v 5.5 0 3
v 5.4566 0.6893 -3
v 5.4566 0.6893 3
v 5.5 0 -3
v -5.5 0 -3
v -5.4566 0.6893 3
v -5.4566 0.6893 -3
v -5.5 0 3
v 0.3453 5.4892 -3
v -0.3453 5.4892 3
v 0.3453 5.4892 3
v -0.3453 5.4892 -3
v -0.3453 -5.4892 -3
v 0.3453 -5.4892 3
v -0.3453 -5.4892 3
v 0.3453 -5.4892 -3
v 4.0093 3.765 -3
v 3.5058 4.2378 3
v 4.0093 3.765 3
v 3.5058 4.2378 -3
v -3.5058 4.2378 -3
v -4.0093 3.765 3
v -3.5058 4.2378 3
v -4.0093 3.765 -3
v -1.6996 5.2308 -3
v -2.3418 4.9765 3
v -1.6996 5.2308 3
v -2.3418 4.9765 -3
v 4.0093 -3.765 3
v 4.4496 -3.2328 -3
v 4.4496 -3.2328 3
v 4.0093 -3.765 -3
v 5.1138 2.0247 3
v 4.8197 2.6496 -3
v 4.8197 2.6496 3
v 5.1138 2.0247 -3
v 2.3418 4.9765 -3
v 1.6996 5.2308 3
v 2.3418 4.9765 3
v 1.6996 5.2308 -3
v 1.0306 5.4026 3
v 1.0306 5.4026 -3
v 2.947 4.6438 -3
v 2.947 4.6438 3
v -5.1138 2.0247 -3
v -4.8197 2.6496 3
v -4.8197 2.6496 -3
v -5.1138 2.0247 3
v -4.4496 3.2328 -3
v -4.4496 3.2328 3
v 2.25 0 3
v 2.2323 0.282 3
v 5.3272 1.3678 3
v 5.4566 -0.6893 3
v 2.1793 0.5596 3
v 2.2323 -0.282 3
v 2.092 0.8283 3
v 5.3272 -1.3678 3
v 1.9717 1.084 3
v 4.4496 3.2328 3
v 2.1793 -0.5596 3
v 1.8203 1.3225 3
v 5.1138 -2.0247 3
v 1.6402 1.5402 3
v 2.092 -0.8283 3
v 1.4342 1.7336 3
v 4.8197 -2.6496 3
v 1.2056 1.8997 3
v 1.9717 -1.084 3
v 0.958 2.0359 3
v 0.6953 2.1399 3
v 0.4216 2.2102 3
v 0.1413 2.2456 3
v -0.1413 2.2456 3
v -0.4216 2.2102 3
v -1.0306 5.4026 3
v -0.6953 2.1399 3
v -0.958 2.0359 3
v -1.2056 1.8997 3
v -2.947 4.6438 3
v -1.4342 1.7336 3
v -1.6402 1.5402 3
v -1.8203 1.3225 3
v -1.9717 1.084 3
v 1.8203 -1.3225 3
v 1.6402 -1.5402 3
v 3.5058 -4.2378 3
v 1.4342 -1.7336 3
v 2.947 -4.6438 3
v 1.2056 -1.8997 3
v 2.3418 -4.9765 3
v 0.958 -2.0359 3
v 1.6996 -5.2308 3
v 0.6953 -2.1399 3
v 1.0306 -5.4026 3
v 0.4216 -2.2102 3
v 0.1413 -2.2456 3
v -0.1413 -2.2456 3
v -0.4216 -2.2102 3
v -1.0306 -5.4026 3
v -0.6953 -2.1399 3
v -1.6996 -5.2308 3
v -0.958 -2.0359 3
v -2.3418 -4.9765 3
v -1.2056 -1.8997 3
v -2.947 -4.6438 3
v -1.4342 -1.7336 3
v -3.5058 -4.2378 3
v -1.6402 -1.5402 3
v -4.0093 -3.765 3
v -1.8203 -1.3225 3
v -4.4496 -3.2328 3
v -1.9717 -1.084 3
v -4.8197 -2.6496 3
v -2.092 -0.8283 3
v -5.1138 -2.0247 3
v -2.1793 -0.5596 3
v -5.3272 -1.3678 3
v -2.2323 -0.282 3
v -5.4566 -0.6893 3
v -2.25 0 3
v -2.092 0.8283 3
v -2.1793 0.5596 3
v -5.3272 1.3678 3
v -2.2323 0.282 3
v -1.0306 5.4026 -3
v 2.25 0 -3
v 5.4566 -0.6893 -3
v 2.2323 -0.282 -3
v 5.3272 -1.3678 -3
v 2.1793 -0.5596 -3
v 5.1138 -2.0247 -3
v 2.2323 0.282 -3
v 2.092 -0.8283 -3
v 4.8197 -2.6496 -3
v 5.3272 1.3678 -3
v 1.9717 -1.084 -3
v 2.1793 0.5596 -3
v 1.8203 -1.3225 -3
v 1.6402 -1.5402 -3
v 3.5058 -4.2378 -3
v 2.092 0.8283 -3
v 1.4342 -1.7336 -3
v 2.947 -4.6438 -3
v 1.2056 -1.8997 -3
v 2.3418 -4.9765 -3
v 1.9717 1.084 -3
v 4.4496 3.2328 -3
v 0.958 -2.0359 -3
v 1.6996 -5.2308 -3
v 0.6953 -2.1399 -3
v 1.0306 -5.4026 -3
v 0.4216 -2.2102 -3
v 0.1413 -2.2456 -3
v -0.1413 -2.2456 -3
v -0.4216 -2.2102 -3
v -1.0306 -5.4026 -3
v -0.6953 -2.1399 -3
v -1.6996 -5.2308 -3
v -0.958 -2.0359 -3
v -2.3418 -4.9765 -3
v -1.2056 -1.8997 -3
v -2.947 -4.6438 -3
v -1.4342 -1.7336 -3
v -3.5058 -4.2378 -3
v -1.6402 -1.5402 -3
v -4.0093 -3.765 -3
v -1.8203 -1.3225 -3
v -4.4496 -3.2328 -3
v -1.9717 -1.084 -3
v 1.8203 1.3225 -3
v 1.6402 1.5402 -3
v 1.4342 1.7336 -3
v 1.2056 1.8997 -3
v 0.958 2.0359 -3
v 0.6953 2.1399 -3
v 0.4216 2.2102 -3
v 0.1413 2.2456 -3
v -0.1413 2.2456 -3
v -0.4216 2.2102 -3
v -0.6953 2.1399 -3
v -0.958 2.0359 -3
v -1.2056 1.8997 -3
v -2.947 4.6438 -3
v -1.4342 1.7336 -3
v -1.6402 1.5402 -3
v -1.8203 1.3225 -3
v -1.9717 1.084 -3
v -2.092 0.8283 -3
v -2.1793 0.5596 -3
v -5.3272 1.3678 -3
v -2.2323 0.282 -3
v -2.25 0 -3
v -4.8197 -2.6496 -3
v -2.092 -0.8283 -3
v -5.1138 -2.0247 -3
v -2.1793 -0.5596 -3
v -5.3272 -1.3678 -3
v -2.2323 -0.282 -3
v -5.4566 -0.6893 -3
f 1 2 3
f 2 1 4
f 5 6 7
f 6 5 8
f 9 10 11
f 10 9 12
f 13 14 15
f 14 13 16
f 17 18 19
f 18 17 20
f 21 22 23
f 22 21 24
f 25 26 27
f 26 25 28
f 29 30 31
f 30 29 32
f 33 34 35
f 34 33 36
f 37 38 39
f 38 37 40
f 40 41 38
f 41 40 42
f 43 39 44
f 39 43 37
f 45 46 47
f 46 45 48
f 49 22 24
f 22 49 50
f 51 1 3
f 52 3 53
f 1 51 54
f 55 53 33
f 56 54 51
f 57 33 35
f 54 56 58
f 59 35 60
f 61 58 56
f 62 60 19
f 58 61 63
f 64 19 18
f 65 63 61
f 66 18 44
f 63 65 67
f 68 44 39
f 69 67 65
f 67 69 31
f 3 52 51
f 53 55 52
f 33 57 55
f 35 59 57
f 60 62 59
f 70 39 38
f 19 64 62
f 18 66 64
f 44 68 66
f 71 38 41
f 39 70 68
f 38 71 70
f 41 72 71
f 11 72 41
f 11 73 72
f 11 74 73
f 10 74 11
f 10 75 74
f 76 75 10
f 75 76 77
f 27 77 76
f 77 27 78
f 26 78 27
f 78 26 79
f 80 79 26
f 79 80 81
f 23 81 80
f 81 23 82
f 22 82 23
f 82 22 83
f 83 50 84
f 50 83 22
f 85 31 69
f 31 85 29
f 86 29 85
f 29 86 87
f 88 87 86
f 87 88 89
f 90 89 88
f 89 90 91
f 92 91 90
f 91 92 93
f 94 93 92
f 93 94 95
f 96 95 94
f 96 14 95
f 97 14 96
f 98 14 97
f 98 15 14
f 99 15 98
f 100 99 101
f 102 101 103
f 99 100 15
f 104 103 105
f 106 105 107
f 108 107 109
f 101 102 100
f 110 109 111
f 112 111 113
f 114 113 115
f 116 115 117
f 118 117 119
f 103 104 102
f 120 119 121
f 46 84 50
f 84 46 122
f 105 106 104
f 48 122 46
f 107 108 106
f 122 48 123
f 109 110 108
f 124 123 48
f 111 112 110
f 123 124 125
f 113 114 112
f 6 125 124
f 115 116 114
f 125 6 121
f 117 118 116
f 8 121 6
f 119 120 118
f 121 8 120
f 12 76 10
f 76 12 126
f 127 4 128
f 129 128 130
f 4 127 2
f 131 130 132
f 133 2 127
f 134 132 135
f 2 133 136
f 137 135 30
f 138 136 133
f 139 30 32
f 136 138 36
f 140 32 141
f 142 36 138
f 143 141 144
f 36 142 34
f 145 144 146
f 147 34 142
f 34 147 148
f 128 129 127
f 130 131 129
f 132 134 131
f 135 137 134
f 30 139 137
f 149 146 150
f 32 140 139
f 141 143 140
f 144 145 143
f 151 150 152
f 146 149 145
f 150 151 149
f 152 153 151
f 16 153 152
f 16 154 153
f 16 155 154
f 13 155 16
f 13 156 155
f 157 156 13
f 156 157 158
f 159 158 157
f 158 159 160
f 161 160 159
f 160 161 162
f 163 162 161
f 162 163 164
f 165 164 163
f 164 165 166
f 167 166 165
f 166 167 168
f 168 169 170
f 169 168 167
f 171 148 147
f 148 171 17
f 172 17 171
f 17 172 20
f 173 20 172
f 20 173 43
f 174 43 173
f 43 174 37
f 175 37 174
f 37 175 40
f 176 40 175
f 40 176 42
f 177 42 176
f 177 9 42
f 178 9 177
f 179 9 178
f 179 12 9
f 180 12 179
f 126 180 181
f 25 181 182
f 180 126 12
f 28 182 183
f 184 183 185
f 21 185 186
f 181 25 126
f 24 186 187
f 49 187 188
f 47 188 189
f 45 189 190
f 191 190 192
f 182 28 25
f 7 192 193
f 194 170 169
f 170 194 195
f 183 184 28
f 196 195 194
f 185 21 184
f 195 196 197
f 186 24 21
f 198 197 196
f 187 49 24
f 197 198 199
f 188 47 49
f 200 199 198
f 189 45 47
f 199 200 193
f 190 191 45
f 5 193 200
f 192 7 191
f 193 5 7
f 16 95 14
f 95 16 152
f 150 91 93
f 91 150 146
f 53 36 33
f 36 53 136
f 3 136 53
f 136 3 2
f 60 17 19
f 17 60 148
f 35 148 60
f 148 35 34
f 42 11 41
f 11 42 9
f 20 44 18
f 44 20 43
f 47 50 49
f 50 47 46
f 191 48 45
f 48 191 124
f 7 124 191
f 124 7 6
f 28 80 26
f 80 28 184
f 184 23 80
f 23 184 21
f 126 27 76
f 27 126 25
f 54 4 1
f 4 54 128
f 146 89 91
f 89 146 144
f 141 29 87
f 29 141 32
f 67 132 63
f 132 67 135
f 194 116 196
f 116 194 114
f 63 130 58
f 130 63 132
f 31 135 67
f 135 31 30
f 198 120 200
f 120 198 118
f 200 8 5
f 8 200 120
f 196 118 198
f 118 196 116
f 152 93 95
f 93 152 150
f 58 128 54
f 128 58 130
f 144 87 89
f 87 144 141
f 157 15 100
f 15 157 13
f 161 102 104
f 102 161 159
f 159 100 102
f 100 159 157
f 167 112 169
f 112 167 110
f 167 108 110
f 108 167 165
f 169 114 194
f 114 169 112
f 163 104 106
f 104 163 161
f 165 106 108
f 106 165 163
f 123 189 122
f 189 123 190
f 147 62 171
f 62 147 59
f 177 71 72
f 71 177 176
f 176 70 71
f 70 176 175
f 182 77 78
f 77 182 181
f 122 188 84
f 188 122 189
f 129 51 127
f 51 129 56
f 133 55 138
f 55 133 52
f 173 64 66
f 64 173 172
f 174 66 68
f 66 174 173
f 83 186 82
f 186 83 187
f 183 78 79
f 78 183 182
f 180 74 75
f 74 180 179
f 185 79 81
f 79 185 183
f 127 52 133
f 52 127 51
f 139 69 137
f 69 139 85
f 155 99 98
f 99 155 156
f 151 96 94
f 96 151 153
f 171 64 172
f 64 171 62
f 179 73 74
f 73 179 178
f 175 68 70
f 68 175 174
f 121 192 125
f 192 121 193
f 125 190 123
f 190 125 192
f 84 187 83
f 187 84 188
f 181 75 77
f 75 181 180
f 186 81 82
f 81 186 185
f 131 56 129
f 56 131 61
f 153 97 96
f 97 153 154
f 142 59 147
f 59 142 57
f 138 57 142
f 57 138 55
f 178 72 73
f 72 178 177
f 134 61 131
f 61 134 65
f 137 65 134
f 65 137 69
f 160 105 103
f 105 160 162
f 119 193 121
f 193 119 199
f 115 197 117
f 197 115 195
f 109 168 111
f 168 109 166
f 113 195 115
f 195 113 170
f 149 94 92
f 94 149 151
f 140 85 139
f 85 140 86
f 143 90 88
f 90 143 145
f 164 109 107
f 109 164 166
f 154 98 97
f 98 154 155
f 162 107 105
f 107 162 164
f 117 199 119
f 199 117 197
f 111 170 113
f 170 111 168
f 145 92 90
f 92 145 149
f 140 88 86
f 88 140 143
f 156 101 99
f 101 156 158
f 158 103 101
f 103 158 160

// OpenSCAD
$fn = 50;


difference() {
	union() {
		translate(v = [0, 0, -3.0000000000]) {
			cylinder(h = 6, r = 5.5000000000);
		}
	}
	union() {
		translate(v = [0, 0, -100.0000000000]) {
			cylinder(h = 200, r = 2.2500000000);
		}
	}
}
